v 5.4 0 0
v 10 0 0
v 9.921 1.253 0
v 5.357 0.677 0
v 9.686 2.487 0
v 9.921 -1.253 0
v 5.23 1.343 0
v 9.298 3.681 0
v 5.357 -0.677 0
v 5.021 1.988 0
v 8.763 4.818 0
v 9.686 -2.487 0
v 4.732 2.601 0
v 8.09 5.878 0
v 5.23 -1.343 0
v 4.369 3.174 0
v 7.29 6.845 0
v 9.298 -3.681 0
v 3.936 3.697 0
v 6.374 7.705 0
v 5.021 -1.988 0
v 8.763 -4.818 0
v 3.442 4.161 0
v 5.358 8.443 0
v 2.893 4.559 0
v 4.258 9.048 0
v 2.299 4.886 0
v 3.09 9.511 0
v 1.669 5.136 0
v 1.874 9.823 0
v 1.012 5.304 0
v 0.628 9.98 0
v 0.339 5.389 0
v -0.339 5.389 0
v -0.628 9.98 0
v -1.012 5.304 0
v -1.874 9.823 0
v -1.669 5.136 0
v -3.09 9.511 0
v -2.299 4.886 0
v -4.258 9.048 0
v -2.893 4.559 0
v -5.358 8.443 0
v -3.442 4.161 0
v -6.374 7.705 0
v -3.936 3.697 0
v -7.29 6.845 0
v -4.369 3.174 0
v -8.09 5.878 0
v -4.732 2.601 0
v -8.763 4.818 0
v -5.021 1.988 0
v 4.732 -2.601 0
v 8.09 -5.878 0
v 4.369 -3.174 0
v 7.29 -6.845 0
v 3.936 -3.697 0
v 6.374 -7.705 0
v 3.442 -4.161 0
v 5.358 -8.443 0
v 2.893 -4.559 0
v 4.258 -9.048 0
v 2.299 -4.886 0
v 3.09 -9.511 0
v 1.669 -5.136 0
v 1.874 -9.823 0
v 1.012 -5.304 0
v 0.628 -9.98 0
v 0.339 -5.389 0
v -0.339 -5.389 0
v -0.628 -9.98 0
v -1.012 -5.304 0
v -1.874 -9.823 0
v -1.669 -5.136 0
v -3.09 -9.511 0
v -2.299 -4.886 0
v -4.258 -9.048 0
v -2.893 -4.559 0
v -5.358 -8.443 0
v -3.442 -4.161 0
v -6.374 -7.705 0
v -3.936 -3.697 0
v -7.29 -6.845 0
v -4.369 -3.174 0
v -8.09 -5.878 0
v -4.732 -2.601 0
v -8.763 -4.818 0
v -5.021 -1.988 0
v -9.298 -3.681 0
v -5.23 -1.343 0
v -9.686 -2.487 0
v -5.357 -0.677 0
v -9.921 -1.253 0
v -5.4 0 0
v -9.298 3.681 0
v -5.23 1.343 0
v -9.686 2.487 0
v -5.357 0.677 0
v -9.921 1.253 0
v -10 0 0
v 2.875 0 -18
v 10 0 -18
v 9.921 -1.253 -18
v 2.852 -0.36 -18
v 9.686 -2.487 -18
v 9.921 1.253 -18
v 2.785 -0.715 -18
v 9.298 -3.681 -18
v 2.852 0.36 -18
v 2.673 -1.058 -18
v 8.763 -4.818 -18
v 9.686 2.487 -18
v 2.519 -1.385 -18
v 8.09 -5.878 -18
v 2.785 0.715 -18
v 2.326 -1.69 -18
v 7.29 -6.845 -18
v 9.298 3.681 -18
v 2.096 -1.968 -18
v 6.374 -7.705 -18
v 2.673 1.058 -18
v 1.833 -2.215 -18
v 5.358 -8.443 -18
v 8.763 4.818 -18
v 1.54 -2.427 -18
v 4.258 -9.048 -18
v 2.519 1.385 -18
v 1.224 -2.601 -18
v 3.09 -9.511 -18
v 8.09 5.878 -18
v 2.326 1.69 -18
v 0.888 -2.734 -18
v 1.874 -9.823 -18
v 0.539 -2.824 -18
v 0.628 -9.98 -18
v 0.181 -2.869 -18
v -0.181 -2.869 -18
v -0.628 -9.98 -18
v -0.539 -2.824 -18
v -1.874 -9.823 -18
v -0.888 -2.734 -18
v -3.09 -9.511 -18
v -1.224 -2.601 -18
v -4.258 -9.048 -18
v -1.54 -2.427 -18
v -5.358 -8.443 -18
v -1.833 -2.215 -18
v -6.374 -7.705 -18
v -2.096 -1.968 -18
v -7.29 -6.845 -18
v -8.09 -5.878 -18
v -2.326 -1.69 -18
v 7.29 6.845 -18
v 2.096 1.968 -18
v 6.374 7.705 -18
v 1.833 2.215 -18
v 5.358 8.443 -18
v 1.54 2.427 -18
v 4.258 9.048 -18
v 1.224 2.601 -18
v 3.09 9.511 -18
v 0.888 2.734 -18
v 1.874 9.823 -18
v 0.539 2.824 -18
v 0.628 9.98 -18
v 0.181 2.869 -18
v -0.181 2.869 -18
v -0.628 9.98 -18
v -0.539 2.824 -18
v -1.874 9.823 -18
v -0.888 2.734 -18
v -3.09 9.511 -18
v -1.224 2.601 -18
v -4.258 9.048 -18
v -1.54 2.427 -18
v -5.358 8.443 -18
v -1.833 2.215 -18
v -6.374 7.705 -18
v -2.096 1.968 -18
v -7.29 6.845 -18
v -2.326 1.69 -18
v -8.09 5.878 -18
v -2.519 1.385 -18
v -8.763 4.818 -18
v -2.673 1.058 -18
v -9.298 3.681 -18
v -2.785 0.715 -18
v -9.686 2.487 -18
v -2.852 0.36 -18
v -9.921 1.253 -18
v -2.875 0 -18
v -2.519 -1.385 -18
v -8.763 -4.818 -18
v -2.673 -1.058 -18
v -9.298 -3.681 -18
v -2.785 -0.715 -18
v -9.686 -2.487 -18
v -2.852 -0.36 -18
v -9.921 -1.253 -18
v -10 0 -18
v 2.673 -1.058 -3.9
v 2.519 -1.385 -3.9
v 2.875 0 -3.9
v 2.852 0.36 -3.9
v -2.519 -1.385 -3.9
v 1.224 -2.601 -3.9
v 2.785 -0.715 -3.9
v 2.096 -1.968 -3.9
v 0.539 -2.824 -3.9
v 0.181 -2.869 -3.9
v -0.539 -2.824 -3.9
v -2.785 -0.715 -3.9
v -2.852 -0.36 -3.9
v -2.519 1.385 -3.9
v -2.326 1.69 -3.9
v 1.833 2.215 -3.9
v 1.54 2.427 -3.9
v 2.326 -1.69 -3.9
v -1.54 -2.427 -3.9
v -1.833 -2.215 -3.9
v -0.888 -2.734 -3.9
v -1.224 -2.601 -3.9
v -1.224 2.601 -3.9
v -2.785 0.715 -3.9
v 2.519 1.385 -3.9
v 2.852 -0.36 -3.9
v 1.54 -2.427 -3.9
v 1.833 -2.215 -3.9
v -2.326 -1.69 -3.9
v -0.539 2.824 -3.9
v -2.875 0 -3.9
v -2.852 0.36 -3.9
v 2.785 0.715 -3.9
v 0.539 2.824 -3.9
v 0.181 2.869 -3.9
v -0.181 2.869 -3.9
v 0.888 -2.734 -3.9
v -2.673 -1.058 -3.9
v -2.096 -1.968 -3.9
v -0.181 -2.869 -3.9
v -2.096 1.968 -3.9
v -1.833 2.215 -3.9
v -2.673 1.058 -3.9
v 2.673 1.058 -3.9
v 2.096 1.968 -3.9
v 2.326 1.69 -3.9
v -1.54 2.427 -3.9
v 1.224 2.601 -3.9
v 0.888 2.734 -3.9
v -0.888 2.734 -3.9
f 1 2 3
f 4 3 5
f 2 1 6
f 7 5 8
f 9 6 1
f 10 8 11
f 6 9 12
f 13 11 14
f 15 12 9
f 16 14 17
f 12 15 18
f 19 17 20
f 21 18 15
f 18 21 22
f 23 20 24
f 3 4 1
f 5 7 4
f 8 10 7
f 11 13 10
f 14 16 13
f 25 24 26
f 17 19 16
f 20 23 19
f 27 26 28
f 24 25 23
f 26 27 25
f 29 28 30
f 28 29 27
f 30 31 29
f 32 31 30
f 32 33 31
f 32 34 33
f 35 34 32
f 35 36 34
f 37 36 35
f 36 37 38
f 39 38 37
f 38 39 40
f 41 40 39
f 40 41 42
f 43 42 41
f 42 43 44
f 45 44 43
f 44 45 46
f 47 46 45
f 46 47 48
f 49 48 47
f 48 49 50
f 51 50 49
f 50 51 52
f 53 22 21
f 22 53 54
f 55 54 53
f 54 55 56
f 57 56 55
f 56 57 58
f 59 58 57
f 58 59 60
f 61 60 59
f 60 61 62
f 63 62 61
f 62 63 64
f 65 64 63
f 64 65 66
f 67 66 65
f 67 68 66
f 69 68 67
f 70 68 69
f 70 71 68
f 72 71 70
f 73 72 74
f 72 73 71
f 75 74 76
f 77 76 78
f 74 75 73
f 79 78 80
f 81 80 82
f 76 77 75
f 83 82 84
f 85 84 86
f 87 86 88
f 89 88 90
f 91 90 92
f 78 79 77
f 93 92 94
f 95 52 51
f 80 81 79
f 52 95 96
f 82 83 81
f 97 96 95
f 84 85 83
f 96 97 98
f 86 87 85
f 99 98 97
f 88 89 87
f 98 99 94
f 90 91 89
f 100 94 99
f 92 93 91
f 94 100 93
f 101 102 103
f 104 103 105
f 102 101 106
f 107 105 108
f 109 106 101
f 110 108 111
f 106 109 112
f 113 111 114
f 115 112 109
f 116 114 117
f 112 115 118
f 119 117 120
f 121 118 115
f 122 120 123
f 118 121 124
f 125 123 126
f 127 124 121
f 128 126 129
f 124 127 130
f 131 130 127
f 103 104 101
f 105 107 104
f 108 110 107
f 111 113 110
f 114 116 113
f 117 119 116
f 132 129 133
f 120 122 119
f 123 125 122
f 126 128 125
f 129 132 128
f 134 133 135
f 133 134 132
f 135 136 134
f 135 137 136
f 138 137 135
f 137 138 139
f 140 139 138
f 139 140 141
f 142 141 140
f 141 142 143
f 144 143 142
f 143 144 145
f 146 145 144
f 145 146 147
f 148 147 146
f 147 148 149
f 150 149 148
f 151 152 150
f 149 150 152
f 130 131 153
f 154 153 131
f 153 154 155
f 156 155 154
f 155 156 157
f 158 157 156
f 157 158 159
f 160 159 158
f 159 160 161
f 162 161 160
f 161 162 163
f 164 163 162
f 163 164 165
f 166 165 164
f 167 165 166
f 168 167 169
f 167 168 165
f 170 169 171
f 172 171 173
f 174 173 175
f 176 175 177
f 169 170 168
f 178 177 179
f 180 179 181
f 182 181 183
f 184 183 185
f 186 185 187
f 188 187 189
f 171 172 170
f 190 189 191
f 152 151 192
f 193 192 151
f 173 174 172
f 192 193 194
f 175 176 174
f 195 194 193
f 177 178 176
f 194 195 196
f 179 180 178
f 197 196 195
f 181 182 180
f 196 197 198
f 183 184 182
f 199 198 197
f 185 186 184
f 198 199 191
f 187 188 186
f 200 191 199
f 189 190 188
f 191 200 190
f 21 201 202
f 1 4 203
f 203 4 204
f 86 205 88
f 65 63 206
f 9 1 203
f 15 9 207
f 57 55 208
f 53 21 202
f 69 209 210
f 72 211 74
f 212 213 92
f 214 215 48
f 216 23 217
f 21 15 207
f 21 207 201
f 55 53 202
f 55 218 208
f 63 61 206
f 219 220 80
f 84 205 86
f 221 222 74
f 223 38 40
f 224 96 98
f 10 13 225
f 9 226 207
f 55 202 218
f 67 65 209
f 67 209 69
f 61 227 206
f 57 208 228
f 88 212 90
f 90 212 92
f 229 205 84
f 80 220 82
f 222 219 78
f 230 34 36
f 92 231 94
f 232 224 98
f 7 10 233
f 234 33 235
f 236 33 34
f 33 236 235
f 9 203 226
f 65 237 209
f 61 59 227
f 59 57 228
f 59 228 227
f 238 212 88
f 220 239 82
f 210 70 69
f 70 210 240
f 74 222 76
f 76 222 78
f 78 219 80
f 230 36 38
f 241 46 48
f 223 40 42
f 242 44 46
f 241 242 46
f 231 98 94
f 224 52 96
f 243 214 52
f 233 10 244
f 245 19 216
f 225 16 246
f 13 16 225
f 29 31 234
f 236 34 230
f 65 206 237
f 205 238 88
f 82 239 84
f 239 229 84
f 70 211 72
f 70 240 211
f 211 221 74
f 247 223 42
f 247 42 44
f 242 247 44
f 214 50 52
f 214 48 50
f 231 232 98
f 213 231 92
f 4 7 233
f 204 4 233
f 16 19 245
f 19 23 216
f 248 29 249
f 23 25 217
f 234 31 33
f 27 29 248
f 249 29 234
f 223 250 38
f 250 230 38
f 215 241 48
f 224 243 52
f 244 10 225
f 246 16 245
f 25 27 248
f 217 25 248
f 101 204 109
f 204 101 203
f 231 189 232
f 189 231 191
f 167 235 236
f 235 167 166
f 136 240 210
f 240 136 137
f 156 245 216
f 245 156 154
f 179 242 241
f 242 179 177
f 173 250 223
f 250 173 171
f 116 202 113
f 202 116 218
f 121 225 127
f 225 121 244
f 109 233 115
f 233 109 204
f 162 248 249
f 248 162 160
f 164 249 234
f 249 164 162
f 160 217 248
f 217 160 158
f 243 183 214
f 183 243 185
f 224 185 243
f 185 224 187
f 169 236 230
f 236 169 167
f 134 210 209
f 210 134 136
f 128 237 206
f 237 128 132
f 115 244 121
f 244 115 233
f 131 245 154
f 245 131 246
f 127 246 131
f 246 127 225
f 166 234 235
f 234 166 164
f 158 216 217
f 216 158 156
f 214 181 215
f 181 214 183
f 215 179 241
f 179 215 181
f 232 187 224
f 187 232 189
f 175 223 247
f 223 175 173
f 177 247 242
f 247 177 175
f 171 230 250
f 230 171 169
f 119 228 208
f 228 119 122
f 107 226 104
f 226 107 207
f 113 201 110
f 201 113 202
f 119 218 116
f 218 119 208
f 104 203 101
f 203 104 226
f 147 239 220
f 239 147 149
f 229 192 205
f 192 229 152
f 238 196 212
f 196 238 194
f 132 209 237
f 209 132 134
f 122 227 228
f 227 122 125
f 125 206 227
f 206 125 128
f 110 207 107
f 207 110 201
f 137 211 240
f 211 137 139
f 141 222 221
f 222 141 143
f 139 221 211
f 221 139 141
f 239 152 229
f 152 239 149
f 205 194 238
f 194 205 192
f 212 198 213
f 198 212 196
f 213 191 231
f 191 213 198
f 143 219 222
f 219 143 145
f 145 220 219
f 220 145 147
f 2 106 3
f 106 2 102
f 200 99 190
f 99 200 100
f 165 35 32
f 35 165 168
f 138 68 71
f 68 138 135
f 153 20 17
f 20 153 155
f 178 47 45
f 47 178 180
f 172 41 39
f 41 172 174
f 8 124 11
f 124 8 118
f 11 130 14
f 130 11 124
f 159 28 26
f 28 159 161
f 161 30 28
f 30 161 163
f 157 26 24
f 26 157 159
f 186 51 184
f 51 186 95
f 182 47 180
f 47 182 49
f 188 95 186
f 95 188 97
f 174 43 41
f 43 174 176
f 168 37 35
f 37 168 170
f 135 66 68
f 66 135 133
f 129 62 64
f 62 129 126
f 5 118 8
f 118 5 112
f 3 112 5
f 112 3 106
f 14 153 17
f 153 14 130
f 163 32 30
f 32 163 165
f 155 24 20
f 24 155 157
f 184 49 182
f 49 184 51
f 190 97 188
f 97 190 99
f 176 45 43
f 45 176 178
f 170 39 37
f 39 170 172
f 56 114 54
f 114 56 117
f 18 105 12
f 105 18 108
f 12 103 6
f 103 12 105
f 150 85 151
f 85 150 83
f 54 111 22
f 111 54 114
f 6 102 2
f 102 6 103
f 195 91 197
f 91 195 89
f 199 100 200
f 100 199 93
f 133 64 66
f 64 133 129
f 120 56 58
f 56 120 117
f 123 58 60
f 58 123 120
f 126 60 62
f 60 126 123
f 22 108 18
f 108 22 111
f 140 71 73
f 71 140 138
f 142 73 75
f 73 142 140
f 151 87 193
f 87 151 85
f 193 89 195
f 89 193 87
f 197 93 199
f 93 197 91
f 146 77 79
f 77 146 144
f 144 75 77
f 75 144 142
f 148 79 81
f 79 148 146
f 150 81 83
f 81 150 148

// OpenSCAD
$fn = 50;


difference() {
	union() {
		translate(v = [0, 0, -18.0000000000]) {
			cylinder(h = 18, r = 10.0000000000);
		}
		cylinder(h = 0, r = 19.0000000000);
	}
	union() {
		translate(v = [0, 0, 0]) {
			rotate(a = [0, 0, 0]) {
				difference() {
					union() {
						#translate(v = [0, 0, -18.0000000000]) {
							cylinder(h = 18, r = 2.6000000000);
						}
						#translate(v = [0, 0, -3.9000000000]) {
							cylinder(h = 3.9000000000, r1 = 2.8750000000, r2 = 5.4000000000);
						}
						#translate(v = [0, 0, -18.0000000000]) {
							cylinder(h = 18, r = 2.8750000000);
						}
						#translate(v = [0, 0, -18.0000000000]) {
							cylinder(h = 18, r = 2.6000000000);
						}
					}
					union();
				}
			}
		}
	}
}
